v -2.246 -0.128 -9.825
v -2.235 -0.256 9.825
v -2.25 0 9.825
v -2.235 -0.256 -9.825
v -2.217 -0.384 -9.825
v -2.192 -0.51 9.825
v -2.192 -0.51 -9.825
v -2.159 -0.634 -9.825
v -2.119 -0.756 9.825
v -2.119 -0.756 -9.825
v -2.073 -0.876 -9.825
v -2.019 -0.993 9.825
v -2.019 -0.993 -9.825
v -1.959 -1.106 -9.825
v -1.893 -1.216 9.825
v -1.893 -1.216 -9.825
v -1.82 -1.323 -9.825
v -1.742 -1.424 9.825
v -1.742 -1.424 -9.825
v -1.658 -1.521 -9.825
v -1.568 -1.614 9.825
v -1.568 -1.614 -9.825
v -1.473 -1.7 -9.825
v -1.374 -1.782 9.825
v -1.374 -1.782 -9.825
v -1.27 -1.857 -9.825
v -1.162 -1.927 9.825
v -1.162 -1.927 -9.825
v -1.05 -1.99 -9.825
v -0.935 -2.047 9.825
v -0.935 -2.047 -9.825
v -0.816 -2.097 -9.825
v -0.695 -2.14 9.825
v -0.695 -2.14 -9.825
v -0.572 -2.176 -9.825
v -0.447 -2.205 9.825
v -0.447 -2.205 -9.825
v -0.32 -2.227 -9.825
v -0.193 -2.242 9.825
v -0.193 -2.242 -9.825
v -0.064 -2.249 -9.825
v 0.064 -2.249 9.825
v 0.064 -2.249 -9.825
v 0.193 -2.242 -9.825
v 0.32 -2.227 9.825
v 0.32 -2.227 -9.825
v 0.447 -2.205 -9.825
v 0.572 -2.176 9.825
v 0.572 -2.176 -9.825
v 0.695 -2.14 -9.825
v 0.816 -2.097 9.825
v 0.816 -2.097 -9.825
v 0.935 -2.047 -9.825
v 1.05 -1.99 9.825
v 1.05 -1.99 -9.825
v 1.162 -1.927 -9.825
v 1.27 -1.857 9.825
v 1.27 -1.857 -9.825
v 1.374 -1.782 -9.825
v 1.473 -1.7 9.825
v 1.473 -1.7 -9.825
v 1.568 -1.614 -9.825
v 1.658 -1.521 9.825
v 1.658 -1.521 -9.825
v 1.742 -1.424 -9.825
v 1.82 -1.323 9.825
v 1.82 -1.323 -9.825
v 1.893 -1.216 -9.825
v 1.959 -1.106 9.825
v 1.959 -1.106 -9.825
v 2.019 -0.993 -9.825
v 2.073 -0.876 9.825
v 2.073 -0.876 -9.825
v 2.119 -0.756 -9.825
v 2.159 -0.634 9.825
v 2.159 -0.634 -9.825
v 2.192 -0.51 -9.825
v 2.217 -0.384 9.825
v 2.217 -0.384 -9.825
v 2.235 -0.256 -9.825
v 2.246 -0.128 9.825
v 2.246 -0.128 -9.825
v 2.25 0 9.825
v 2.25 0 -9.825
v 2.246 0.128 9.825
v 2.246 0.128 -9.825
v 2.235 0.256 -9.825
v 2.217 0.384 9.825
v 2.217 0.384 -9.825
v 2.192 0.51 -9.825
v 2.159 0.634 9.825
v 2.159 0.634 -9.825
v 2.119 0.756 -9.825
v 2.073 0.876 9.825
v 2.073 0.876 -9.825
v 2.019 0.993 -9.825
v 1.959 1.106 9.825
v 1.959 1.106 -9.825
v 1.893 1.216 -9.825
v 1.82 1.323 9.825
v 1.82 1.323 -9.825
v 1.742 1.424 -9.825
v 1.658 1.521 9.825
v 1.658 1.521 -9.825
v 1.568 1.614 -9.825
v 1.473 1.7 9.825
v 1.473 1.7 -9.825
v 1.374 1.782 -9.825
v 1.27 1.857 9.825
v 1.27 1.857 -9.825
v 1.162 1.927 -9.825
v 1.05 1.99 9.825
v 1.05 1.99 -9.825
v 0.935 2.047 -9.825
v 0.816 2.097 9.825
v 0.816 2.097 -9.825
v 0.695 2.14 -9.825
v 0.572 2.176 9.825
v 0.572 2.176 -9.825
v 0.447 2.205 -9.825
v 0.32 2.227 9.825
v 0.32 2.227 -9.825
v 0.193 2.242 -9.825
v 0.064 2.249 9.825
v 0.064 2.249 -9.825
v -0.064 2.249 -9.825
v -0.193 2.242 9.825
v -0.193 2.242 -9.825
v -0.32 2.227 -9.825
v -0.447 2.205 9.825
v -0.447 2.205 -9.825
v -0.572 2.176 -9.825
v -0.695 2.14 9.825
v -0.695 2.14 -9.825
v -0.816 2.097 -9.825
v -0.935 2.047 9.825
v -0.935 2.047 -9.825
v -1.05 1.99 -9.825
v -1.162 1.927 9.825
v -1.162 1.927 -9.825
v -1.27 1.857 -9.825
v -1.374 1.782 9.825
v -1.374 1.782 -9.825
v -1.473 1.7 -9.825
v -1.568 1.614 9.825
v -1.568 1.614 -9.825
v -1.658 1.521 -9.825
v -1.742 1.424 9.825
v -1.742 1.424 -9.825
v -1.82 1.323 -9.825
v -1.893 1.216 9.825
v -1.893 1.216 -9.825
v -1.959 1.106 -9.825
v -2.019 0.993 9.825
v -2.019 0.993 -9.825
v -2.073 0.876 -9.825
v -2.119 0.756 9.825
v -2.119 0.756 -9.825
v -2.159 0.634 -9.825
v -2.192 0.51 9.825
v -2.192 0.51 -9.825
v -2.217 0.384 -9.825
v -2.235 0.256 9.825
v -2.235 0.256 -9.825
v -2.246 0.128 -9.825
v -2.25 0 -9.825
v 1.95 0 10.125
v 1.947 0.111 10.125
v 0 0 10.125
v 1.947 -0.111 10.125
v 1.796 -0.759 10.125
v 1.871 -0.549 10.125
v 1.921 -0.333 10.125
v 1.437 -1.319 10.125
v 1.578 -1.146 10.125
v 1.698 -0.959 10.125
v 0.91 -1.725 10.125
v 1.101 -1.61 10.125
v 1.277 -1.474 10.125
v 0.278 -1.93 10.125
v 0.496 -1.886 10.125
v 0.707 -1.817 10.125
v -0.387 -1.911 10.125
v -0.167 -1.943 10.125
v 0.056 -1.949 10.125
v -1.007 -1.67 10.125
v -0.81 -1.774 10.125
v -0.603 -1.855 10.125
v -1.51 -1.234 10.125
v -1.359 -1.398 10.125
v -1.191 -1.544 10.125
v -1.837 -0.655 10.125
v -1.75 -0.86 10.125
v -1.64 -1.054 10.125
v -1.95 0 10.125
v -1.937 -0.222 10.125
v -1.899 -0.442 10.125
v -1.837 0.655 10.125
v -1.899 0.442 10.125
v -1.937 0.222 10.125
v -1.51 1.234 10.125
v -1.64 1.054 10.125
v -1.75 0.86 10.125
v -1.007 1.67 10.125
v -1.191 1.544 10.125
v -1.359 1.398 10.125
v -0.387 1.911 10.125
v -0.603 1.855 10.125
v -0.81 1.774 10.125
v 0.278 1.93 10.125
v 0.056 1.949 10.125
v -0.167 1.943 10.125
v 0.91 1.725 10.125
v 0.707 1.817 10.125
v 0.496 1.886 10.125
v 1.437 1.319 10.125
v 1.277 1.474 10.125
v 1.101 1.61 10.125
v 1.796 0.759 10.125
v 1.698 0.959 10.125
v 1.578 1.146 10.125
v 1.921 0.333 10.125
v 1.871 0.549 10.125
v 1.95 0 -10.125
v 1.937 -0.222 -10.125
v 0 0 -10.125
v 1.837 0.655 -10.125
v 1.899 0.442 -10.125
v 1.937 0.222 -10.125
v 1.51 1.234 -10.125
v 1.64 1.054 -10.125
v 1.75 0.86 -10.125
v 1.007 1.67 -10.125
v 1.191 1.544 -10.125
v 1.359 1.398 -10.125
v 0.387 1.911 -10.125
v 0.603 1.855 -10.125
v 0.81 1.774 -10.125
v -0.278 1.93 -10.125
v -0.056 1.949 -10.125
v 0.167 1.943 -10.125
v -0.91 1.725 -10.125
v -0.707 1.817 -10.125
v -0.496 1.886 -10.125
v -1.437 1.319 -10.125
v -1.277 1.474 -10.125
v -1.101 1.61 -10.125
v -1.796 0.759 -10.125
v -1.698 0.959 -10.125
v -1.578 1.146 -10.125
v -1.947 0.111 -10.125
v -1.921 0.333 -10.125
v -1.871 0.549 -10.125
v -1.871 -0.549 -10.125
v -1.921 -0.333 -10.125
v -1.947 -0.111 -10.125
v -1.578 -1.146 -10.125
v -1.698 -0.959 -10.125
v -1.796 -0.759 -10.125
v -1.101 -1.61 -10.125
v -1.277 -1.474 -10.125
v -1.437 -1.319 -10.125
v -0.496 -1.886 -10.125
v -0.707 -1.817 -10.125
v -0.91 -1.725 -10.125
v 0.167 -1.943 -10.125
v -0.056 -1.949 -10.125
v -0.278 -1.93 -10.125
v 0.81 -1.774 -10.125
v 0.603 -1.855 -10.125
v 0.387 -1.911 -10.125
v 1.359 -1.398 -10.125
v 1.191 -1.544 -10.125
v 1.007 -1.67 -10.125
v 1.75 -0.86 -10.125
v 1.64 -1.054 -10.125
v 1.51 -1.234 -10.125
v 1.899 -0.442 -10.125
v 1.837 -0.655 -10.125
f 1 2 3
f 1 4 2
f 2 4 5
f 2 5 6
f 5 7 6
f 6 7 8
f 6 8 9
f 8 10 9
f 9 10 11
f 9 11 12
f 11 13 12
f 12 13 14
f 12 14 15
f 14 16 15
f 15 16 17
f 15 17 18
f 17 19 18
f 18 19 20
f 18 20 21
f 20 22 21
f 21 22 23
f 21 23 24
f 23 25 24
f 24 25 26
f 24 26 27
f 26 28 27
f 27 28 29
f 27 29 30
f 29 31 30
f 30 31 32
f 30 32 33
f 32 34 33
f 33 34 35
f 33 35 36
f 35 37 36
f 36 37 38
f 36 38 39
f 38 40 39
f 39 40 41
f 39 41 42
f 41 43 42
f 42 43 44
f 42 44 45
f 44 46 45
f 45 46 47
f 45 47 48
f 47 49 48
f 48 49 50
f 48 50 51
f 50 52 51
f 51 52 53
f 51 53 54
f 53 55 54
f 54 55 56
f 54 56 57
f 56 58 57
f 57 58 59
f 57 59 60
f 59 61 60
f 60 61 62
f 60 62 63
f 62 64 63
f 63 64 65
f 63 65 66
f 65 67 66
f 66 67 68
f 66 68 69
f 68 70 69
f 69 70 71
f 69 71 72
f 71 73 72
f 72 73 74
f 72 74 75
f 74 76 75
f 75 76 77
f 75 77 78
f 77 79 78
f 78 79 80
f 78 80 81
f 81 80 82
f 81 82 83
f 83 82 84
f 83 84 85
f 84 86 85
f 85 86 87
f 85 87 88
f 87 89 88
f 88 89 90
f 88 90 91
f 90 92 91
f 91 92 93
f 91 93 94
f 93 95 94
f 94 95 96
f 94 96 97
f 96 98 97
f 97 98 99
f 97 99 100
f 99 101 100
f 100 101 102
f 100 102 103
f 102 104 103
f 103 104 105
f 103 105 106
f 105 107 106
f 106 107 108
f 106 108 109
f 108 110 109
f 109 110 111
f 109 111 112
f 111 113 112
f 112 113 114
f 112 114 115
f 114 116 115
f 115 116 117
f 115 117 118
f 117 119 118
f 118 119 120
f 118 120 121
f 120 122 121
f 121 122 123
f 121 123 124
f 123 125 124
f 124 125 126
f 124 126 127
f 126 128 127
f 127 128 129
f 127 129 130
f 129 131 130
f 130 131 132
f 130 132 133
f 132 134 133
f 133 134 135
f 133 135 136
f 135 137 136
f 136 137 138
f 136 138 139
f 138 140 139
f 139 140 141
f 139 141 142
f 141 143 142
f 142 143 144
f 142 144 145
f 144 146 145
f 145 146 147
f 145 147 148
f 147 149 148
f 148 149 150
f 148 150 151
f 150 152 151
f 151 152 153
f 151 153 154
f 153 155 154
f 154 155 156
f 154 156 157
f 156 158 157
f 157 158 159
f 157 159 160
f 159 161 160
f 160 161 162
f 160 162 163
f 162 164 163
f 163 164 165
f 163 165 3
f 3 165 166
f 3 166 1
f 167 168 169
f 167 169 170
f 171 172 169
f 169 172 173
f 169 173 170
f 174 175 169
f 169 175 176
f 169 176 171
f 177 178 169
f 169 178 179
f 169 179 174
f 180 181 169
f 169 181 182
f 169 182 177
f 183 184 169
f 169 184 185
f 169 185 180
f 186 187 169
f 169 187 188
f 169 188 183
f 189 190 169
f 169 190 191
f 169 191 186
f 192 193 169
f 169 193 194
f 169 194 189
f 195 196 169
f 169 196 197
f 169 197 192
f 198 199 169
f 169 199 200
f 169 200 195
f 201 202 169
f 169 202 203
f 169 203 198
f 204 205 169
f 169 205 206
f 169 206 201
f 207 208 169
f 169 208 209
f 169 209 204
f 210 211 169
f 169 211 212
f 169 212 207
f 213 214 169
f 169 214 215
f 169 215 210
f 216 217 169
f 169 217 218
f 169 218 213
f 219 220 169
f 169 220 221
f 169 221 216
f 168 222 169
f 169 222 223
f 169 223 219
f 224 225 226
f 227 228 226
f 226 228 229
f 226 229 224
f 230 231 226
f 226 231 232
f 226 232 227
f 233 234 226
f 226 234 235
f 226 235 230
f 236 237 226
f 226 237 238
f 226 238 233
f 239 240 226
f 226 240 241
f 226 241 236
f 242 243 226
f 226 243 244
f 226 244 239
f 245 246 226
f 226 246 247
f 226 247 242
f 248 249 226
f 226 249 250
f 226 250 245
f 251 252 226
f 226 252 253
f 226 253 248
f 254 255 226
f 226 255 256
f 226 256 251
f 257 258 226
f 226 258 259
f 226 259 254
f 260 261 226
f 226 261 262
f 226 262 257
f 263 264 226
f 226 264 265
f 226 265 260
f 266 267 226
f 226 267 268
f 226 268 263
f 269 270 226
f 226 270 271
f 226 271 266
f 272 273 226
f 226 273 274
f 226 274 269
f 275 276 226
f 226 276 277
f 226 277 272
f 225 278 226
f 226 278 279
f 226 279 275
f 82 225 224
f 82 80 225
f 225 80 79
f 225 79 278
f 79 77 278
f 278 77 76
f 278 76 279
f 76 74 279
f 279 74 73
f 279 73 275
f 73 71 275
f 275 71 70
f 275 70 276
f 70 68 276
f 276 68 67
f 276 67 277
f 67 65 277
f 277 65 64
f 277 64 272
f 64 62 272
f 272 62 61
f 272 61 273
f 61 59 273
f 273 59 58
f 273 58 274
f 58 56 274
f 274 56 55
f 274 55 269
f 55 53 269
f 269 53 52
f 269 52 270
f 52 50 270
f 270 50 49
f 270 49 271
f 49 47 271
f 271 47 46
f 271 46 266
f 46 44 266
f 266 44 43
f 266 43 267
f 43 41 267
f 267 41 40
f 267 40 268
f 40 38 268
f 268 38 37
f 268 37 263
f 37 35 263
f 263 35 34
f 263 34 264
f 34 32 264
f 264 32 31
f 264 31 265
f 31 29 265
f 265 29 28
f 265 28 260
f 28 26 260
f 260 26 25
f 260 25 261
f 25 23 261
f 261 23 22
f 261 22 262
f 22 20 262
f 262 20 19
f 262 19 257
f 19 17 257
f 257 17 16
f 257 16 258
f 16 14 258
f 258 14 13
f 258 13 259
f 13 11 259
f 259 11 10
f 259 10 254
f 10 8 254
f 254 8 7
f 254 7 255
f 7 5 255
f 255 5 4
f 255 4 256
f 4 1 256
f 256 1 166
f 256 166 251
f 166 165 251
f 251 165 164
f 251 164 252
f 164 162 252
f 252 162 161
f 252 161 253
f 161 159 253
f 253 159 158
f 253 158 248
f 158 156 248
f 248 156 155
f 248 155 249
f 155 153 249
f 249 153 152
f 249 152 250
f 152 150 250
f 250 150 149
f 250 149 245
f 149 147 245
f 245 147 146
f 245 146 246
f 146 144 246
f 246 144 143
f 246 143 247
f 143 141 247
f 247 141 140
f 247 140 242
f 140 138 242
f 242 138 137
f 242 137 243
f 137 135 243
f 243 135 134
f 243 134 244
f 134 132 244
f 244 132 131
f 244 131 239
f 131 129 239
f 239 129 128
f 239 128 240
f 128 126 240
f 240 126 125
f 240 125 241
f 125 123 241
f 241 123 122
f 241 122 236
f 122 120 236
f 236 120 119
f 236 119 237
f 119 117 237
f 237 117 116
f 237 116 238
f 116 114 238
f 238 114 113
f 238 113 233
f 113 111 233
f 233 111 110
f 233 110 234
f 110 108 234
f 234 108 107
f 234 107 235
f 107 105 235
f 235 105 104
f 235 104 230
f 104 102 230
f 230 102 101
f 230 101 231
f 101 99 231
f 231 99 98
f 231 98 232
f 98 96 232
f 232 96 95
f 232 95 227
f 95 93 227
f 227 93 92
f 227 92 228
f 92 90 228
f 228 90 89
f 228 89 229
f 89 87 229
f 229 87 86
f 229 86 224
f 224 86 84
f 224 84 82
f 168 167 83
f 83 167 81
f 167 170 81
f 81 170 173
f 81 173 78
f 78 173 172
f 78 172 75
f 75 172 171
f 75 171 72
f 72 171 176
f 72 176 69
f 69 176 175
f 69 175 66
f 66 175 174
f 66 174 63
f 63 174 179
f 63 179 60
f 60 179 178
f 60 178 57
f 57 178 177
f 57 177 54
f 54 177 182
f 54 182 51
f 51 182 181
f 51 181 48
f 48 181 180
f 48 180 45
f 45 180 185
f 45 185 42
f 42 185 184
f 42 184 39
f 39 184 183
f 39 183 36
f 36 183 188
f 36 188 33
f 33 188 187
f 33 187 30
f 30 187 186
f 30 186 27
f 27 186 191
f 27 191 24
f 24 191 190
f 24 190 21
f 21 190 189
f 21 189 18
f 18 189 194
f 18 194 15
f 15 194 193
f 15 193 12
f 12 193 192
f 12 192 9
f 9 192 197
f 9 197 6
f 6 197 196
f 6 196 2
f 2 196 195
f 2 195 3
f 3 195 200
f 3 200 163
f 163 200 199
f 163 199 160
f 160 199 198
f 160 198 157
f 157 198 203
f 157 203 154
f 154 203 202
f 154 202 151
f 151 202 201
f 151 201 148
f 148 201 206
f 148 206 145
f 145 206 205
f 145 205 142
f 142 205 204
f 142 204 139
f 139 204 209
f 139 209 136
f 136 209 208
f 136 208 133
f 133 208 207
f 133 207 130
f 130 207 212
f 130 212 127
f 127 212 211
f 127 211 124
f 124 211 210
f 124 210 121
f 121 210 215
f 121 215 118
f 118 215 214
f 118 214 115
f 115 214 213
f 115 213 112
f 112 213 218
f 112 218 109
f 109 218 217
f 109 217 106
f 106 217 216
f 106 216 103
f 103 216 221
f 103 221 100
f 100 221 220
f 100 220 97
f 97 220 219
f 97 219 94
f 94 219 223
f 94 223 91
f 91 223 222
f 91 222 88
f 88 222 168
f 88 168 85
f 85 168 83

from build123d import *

# Parameters (mm, degrees)
SKETCH1_R           = 1.5
BOSS_EXTRUDE1_DEPTH = 6.75
CHAMFER1_SIZE       = 0.2
SCALE1_SCALE        = 1.5


with BuildPart() as part:
    # Sketch1 → Boss-Extrude1 (new, symmetric)
    with BuildSketch(Plane.XY):
        Circle(SKETCH1_R)
    extrude(amount=BOSS_EXTRUDE1_DEPTH, both=True)

    # Chamfer1
    chamfer1_edges = [part.edges().sort_by_distance(p)[0] for p in [
        (-1.5, 0, -6.75),
        (-1.5, 0, 6.75),
    ]]
    chamfer(chamfer1_edges, length=CHAMFER1_SIZE)


with BuildPart() as part_1:
    # Scale1: scaled about (0, 0, 0)
    add(part.part.scale(SCALE1_SCALE))


solid = part_1.part
